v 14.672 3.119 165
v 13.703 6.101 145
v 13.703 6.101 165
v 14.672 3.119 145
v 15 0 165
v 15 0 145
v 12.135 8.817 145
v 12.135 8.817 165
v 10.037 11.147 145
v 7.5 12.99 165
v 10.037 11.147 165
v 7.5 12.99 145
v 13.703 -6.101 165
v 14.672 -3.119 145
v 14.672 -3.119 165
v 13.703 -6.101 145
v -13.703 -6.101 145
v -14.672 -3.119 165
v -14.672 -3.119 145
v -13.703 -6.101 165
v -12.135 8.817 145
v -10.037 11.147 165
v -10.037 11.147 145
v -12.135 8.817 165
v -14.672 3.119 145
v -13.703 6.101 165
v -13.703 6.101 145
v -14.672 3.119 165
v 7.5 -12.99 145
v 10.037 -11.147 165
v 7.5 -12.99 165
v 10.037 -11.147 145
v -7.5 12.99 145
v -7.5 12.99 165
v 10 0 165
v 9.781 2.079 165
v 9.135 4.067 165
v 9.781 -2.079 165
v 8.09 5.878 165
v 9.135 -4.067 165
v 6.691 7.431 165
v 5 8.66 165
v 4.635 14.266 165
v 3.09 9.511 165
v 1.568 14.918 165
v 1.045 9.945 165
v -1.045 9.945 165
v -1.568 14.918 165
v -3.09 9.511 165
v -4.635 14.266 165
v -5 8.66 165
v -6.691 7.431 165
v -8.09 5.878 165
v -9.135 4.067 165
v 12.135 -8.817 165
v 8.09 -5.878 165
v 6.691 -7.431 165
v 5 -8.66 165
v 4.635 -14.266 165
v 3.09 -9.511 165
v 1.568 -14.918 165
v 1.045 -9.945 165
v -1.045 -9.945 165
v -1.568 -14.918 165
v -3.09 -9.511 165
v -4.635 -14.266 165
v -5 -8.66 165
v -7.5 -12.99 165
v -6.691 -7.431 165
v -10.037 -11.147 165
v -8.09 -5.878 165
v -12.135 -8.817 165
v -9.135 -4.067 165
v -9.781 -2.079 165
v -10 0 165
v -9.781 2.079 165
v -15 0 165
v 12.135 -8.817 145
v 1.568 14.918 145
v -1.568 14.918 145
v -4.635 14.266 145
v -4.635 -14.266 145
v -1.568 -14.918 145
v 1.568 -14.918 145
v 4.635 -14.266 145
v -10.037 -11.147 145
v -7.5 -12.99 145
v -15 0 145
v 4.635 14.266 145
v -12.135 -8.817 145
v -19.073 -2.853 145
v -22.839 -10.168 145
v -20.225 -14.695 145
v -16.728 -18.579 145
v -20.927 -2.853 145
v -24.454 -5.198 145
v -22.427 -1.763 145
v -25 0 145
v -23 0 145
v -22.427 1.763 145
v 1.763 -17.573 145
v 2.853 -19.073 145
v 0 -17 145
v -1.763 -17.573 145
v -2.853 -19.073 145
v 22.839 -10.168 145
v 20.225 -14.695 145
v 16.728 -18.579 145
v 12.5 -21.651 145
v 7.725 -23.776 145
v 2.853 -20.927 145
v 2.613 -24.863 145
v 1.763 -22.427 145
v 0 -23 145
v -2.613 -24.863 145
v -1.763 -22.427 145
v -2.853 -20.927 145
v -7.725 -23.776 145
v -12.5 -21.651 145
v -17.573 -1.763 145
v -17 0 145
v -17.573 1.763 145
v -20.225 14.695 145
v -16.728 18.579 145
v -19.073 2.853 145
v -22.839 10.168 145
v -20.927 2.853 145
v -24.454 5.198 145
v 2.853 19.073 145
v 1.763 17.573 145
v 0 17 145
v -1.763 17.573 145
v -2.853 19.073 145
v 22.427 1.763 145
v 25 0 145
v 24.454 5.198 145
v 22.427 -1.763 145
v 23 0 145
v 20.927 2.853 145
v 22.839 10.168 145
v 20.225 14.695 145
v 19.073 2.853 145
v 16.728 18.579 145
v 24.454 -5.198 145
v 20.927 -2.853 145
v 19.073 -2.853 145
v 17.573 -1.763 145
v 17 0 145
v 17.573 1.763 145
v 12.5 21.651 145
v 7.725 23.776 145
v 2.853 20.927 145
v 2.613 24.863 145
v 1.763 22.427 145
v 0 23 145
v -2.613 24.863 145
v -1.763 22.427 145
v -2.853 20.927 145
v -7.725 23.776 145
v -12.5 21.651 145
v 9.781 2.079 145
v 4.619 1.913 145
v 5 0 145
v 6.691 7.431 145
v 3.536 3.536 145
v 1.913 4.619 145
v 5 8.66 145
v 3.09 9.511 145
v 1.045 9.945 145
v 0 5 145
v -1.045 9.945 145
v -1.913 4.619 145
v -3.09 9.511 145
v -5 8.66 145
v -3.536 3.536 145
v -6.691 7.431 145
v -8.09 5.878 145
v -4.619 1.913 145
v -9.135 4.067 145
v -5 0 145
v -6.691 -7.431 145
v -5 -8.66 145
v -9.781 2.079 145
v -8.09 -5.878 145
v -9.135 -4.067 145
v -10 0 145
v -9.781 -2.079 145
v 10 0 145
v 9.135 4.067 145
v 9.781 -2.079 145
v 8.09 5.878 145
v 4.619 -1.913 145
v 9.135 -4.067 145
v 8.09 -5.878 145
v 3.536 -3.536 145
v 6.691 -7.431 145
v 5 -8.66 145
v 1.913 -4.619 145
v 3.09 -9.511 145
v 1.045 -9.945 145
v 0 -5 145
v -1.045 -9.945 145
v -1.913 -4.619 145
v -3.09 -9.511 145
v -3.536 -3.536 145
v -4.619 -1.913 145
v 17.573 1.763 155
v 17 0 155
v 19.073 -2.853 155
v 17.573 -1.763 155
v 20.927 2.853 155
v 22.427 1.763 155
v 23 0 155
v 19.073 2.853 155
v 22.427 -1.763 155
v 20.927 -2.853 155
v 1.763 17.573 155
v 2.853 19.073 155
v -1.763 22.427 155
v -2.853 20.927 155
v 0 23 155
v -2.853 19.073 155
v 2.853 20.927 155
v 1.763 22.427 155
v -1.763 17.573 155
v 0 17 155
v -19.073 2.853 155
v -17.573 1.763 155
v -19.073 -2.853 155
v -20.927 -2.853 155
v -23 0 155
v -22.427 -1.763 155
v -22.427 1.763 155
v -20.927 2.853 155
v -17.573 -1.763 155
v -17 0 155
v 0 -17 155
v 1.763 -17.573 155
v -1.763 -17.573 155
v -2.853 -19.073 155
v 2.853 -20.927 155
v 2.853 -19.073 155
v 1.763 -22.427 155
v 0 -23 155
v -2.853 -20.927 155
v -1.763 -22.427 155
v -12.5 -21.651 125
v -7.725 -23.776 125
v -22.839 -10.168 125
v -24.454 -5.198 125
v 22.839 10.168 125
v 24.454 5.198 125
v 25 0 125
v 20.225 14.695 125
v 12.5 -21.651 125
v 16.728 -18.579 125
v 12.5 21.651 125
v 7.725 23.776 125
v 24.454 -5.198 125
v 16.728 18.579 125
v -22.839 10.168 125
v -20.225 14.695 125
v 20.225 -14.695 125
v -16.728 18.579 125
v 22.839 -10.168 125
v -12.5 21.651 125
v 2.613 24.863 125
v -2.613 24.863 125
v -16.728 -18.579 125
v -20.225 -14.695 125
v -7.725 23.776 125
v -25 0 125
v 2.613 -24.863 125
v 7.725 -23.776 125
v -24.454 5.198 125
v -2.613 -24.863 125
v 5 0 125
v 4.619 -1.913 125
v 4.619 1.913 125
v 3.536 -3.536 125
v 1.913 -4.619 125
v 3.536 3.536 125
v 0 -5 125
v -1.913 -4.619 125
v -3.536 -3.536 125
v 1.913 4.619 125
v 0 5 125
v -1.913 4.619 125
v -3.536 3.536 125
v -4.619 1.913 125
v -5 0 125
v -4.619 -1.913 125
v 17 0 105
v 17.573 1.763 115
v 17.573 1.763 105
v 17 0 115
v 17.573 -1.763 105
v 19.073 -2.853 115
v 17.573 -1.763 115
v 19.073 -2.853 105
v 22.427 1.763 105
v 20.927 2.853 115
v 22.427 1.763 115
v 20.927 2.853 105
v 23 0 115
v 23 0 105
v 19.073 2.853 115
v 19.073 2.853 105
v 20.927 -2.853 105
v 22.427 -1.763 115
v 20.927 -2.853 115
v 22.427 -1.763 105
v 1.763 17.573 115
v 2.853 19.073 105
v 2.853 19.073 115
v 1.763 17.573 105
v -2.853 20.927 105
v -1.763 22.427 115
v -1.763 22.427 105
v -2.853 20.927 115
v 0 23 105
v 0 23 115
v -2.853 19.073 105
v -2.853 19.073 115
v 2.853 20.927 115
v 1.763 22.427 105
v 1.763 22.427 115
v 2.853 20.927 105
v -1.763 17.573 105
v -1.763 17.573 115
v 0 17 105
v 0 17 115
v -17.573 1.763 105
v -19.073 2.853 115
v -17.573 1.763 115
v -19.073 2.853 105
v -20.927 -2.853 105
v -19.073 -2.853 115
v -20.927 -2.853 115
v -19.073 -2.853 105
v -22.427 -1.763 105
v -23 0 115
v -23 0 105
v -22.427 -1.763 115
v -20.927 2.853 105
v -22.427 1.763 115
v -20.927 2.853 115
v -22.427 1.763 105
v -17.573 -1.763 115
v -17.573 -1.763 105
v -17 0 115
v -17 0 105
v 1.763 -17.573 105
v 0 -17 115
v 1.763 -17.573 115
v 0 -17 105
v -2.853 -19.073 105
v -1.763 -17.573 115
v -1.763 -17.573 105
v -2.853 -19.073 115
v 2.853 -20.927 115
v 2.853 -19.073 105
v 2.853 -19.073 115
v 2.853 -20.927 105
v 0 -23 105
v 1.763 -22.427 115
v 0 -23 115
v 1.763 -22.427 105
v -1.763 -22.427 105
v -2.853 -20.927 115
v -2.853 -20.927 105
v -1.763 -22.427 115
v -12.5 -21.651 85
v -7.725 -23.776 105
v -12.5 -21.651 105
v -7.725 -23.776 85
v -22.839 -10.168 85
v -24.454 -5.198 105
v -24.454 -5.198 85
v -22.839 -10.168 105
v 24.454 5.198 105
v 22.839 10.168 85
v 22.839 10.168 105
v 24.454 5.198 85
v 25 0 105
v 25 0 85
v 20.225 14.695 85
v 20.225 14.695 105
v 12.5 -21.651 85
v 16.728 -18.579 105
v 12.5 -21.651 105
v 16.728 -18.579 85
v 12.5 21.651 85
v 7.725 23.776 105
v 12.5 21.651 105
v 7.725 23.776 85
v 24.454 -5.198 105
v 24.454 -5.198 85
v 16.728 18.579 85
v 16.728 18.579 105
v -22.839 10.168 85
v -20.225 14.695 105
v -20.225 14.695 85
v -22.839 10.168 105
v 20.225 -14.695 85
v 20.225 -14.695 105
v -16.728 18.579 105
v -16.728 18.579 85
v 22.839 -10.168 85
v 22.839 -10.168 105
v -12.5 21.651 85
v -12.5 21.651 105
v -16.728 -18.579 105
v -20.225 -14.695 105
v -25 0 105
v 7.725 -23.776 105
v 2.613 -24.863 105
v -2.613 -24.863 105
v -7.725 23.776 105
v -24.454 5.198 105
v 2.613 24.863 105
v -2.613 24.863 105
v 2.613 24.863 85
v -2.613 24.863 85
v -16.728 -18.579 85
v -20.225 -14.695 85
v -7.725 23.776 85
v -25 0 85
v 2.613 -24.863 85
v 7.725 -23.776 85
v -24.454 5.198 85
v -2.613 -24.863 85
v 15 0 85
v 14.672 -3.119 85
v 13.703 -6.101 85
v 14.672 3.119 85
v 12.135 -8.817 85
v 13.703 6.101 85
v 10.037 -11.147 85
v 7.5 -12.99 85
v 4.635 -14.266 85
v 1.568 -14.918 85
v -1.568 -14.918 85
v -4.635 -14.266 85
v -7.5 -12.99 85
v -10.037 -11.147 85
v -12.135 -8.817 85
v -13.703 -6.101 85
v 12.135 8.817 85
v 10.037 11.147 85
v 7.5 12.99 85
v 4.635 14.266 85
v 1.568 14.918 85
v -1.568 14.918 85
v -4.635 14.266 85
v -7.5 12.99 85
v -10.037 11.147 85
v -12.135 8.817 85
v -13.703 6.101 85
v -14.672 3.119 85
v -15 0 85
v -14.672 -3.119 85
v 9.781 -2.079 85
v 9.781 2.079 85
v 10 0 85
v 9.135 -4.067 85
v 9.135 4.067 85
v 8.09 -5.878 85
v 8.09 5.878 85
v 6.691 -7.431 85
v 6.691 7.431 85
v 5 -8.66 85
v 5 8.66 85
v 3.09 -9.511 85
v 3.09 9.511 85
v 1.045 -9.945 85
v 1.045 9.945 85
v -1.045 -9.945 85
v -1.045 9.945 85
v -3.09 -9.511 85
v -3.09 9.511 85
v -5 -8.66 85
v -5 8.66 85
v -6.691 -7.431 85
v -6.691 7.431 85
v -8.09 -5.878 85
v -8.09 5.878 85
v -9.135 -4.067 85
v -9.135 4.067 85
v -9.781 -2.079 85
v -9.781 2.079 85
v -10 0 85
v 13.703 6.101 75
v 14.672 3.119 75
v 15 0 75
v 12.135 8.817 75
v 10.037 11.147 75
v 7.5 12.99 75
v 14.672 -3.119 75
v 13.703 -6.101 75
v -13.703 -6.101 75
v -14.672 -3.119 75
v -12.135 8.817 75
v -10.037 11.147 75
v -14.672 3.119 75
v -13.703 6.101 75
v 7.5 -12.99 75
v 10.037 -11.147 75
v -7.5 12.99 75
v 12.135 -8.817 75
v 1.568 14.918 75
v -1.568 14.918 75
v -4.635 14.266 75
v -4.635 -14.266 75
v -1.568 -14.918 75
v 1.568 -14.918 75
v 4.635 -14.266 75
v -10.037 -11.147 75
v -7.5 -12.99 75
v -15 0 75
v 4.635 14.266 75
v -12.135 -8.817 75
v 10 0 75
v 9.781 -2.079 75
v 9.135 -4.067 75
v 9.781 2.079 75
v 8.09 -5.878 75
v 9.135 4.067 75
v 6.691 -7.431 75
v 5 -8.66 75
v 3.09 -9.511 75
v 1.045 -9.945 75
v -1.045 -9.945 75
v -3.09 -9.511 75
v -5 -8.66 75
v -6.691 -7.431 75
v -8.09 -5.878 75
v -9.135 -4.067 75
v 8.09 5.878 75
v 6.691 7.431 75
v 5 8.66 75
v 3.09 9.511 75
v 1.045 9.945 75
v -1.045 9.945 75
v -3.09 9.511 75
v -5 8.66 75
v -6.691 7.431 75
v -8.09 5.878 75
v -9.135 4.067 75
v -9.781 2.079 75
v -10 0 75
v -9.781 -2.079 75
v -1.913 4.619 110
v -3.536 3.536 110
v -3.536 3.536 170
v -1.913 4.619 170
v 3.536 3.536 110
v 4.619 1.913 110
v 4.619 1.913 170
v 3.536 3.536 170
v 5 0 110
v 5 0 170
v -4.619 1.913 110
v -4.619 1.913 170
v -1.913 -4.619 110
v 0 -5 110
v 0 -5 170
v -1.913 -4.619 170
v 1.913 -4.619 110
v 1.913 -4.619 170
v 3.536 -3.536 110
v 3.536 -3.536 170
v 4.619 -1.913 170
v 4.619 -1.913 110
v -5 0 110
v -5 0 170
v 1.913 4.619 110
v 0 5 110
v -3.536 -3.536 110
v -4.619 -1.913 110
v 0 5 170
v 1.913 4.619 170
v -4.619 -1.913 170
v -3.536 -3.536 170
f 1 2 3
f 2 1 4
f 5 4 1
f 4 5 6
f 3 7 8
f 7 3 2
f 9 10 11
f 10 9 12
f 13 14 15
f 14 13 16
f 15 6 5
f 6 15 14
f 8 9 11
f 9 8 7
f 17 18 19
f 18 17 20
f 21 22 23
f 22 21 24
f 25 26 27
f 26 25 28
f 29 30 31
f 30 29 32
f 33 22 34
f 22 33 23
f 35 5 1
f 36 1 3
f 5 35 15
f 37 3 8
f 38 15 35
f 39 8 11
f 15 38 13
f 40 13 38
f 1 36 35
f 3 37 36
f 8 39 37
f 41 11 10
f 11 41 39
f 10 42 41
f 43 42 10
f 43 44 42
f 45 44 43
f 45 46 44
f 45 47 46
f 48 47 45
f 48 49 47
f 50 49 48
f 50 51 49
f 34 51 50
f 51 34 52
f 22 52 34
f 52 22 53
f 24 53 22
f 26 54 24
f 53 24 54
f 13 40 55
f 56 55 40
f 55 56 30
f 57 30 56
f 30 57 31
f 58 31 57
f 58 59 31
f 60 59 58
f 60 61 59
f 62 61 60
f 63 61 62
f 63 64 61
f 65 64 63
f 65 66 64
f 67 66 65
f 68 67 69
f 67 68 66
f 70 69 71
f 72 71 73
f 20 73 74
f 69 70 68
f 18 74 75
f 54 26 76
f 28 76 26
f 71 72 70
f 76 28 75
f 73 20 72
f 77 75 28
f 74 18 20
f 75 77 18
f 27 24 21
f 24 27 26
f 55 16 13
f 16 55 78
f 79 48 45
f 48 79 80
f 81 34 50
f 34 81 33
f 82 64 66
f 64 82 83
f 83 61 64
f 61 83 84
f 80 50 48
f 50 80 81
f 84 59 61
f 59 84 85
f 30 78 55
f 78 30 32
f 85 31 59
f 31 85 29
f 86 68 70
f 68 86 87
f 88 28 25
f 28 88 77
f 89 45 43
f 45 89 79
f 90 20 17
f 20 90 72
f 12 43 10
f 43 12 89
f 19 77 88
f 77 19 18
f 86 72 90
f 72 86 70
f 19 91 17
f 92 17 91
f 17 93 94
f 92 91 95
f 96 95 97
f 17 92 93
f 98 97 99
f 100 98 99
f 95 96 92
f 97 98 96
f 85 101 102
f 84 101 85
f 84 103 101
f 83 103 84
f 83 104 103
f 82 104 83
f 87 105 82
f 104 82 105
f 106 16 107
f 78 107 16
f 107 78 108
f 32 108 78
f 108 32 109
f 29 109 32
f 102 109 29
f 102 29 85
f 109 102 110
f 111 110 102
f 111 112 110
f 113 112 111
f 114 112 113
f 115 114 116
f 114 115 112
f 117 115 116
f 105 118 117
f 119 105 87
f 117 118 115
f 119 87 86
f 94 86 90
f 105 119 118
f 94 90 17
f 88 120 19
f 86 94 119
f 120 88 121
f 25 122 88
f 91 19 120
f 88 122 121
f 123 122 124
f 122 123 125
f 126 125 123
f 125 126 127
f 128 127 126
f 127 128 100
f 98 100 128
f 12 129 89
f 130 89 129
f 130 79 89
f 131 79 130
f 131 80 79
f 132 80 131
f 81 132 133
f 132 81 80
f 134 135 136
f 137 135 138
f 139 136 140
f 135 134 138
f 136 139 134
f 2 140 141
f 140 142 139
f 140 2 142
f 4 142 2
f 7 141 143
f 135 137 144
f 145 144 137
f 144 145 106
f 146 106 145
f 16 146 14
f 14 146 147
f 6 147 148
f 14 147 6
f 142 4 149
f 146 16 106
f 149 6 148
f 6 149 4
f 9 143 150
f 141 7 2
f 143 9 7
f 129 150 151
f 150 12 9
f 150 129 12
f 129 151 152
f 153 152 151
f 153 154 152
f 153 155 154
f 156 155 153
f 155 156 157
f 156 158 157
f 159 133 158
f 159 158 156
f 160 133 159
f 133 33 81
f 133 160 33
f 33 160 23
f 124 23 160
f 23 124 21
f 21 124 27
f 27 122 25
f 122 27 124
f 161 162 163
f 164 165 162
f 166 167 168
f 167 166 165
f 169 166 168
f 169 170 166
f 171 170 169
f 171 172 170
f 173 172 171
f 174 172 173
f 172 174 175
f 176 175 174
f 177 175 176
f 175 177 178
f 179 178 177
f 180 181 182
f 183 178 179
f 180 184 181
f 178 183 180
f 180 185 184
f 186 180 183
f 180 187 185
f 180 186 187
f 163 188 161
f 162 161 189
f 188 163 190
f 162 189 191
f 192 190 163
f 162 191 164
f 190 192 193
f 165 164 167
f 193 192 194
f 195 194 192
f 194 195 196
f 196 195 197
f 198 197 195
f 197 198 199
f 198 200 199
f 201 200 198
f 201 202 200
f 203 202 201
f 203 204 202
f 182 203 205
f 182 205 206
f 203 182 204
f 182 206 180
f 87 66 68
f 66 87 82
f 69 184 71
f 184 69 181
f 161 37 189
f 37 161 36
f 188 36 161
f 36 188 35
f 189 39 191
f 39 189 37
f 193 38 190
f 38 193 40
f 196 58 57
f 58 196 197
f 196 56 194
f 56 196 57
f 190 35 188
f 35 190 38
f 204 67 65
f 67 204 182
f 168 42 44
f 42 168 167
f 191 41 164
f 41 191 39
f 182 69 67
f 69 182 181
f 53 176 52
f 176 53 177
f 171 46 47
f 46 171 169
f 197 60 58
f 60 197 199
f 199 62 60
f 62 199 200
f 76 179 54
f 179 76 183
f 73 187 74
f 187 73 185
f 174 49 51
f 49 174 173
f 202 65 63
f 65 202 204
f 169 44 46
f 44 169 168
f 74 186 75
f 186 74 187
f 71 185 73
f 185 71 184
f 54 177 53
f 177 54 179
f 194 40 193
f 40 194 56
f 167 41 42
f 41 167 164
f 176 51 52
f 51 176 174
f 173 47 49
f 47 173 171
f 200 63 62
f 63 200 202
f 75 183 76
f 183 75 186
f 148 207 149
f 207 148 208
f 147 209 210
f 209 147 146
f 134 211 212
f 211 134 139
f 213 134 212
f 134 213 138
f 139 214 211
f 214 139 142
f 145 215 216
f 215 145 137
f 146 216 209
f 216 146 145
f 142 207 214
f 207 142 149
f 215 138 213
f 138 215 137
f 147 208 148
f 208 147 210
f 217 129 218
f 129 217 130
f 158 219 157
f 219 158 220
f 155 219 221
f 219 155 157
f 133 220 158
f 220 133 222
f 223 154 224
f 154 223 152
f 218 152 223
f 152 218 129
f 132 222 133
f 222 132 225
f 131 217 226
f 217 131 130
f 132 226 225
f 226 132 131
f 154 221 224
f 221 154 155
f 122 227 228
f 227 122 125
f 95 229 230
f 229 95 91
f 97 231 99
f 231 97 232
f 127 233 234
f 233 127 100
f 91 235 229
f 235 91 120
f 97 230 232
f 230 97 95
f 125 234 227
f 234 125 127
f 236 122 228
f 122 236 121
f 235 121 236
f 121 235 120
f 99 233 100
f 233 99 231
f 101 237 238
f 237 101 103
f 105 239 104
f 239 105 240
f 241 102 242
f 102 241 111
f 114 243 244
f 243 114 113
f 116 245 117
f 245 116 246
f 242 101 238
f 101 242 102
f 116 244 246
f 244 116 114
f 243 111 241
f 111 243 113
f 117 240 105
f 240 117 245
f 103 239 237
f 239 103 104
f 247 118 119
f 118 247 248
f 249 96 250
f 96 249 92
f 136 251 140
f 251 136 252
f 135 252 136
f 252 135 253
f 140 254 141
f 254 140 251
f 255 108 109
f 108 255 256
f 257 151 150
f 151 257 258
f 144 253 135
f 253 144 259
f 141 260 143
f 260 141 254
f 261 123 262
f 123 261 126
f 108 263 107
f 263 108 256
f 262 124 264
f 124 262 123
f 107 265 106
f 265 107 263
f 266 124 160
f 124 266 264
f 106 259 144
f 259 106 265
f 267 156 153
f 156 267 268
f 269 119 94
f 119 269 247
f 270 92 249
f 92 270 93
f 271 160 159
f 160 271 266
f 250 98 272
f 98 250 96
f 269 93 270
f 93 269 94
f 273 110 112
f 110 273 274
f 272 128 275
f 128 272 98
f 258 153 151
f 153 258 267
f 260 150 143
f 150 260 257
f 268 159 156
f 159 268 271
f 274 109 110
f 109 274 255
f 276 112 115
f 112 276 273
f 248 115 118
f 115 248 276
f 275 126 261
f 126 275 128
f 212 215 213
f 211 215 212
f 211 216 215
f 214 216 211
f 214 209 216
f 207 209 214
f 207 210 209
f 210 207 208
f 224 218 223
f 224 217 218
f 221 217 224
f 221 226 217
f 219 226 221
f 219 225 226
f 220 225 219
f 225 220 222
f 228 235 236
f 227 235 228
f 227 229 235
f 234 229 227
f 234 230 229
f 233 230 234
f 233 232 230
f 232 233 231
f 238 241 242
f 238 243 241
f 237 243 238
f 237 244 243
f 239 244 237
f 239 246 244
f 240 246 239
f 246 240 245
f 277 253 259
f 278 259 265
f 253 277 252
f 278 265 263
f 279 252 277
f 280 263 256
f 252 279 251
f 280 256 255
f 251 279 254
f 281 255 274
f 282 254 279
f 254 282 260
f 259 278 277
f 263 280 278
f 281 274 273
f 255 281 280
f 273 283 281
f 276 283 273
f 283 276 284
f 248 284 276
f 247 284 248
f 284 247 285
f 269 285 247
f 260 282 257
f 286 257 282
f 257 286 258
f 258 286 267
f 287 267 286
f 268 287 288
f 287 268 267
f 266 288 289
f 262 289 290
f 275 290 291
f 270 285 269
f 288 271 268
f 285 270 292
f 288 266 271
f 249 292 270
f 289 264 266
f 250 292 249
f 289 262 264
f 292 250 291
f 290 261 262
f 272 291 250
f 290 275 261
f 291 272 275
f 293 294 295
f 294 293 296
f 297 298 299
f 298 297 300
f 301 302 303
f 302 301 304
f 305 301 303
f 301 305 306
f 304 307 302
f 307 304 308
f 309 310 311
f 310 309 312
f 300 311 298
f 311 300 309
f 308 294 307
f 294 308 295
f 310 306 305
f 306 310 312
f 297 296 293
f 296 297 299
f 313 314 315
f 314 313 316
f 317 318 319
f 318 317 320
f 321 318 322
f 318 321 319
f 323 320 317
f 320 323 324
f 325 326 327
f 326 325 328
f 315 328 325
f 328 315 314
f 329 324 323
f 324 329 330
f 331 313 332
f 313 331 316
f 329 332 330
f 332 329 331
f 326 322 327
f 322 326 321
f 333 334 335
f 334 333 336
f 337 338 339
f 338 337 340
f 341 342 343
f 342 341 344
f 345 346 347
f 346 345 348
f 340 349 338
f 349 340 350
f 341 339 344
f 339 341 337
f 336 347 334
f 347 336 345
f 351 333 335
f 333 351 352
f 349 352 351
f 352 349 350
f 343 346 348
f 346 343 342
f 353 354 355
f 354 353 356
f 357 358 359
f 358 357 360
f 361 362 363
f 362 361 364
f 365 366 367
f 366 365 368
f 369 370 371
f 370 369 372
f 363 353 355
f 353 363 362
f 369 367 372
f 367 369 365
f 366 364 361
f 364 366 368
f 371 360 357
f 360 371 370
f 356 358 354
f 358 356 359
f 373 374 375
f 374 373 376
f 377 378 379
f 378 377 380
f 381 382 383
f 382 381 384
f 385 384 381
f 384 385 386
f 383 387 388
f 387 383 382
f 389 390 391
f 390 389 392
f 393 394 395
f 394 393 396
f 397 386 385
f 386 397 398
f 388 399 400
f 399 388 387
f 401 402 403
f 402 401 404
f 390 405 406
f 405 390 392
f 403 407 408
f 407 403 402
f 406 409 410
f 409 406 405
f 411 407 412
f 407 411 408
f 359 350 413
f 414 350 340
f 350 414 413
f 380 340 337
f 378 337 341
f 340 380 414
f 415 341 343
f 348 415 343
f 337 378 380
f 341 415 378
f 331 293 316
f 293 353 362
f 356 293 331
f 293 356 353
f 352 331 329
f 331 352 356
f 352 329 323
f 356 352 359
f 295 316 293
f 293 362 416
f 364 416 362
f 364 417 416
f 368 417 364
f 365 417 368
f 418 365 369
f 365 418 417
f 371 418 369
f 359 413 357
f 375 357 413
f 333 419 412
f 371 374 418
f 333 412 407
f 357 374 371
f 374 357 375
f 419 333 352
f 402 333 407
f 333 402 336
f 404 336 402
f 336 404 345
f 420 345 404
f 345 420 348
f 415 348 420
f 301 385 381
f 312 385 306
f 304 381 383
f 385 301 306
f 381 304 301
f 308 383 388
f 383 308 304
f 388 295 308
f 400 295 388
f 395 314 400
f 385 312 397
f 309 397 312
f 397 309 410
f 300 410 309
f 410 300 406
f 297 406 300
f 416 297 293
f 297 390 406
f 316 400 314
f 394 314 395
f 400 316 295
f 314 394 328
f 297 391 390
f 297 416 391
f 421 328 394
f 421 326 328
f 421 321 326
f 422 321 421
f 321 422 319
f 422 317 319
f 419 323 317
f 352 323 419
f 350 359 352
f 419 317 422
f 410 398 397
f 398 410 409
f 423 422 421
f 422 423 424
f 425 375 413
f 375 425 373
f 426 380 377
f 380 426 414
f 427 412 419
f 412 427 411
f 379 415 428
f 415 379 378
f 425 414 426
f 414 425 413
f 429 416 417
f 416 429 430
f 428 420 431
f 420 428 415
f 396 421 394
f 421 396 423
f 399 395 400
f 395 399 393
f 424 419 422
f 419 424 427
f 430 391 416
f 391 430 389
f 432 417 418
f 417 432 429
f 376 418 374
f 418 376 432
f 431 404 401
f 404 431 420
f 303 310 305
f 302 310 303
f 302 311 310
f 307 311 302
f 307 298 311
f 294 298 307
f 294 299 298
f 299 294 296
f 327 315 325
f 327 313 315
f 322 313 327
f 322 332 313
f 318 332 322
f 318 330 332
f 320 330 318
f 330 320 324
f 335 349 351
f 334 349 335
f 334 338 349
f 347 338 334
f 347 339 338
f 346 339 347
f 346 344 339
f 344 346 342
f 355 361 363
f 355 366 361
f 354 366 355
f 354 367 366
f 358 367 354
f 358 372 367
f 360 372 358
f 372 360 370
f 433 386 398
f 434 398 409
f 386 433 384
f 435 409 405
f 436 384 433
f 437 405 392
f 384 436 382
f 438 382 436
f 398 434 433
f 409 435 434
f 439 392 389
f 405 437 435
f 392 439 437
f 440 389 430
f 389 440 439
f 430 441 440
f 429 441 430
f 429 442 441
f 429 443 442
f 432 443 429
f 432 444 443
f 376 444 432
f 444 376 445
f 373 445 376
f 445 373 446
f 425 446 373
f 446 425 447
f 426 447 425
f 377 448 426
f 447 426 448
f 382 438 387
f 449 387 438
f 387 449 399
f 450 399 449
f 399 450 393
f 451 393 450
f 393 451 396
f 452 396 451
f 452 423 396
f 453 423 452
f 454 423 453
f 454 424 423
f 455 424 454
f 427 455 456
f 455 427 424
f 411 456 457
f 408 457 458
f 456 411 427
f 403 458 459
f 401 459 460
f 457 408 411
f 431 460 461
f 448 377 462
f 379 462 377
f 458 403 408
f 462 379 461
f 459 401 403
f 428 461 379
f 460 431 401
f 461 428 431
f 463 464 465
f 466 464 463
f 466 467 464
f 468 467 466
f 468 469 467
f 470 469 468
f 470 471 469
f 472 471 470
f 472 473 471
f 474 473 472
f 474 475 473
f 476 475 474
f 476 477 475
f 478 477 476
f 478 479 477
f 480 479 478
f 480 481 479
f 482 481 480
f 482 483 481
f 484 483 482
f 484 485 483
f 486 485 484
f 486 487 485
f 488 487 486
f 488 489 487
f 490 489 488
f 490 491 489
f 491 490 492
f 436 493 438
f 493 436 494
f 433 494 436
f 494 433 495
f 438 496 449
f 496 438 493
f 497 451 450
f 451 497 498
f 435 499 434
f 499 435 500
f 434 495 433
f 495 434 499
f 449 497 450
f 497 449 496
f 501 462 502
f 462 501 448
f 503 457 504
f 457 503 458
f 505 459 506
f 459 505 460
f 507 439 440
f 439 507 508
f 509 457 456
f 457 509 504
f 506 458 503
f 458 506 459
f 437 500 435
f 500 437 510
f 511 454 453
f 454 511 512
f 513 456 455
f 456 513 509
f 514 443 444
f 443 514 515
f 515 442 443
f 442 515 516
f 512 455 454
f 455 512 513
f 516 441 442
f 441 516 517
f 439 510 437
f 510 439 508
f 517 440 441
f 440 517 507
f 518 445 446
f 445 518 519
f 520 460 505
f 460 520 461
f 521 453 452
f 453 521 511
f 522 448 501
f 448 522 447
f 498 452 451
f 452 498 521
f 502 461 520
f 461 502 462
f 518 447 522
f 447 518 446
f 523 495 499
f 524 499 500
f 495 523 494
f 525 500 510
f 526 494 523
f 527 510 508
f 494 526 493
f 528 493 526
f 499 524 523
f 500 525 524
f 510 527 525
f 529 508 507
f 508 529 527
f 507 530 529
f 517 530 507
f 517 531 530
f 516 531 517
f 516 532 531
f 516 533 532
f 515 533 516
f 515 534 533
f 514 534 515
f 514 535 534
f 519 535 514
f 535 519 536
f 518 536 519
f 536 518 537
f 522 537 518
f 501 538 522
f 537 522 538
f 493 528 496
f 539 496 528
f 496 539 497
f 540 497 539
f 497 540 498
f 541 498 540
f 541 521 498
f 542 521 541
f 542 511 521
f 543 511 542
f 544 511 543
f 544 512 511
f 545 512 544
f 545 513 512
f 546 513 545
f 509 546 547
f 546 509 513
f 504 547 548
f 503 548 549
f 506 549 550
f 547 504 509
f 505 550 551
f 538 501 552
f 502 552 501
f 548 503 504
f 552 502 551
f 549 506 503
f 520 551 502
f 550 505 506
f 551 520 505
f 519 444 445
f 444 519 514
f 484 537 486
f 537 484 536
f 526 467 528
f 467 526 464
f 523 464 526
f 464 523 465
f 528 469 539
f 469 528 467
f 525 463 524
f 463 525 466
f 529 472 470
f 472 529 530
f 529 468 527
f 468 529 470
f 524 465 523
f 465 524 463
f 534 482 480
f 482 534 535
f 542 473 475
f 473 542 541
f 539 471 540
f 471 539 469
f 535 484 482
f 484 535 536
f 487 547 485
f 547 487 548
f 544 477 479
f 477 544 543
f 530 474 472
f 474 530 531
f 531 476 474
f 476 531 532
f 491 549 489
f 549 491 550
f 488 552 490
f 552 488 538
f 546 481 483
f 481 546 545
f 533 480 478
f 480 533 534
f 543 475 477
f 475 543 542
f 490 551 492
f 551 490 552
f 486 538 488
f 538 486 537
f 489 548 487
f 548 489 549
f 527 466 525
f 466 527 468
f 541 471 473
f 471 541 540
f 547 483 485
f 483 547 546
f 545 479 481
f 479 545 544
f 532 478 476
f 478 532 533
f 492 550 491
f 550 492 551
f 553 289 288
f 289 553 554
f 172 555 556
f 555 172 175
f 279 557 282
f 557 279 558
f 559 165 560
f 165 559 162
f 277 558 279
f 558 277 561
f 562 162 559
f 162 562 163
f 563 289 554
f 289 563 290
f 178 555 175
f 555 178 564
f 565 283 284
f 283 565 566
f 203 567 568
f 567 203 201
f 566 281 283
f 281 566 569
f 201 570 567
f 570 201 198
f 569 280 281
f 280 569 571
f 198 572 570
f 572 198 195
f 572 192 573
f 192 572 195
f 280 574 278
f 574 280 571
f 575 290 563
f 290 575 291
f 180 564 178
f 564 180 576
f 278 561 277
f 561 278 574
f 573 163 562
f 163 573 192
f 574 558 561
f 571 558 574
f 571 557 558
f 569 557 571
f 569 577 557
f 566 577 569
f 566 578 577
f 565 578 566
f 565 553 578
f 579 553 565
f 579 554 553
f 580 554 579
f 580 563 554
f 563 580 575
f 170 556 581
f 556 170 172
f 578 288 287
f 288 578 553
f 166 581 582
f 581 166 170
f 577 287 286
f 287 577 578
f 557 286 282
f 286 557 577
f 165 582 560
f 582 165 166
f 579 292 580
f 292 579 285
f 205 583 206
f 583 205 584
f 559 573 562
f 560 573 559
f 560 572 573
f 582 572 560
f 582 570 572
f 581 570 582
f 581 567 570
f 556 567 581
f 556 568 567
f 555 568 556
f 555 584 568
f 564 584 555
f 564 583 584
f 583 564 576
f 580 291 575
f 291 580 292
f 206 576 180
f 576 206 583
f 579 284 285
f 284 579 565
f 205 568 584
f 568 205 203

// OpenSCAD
// Parameters for components dimensions
module input_adapter() {
    difference() {
        cylinder(h=20, d=30);
        translate([0, 0, -1]) cylinder(h=22, d=20);
    }
}

module output_adapter() {
    difference() {
        cylinder(h=20, d=30);
        translate([0, 0, -1]) cylinder(h=22, d=20);
    }
}

module central_shaft() {
    cylinder(h=60, d=10);
}

module spacer_ring() {
    difference() {
        cylinder(h=5, d=35);
        translate([0, 0, -1]) cylinder(h=7, d=25);
    }
}

module flange_plate() {
    difference() {
        cylinder(h=10, d=50);
        for (i = [0:3]) {
            rotate([0, 0, i * 90]) translate([20, 0, 5])
            cylinder(h=10, d=6); // Holes for nuts/bolts
        }
    }
}

module nut() {
    cylinder(h=5, d=6);
}

module bolt() {
    cylinder(h=25, d=6);
}

// Assembling the coupling in layers

module layer_1() {
    translate([0, 0, 145]) input_adapter();
}

module layer_2() {
    translate([0, 0, 135]) flange_plate();
    for (i = [0:3]) {
        rotate([0, 0, i * 90]) translate([20, 0, 135])
        nut();
    }
}

module layer_3() {
    translate([0, 0, 130]) spacer_ring();
    for (i = [0:3]) {
        rotate([0, 0, i * 90]) translate([20, 0, 130])
        bolt();
    }
}

module layer_4() {
    translate([0, 0, 125]) flange_plate();
    for (i = [0:3]) {
        rotate([0, 0, i * 90]) translate([20, 0, 125])
        nut();
    }
}

module layer_5() {
    translate([0, 0, 110]) central_shaft();
}

module layer_6() {
    translate([0, 0, 95]) flange_plate();
    for (i = [0:3]) {
        rotate([0, 0, i * 90]) translate([20, 0, 95])
        nut();
    }
}

module layer_7() {
    translate([0, 0, 90]) spacer_ring();
    for (i = [0:3]) {
        rotate([0, 0, i * 90]) translate([20, 0, 90])
        bolt();
    }
}

module layer_8() {
    translate([0, 0, 85]) flange_plate();
    for (i = [0:3]) {
        rotate([0, 0, i * 90]) translate([20, 0, 85])
        nut();
    }
}

module layer_9() {
    translate([0, 0, 75]) output_adapter();
}

// Final assembly
module flexible_coupling() {
    layer_1();
    layer_2();
    layer_3();
    layer_4();
    layer_5();
    layer_6();
    layer_7();
    layer_8();
    layer_9();
}

// Render the model
flexible_coupling();
